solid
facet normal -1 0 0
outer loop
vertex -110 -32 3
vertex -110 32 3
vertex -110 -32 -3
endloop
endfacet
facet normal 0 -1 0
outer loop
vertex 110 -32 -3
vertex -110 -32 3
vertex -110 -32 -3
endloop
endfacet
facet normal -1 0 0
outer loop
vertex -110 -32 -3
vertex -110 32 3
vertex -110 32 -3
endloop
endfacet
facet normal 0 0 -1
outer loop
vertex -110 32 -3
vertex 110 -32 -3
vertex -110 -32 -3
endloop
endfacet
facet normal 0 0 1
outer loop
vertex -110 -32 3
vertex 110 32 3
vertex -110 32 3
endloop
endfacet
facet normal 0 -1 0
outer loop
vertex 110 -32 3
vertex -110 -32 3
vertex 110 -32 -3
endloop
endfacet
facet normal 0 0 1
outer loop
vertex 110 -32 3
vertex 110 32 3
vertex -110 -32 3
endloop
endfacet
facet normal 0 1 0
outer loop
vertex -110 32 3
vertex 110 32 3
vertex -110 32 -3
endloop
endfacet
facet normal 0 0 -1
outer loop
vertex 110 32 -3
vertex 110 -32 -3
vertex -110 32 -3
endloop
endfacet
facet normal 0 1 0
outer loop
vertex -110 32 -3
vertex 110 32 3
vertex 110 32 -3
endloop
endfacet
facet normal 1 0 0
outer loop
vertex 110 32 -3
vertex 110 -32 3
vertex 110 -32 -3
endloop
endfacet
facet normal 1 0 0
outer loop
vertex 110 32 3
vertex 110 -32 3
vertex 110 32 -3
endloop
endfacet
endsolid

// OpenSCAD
polyhedron(points=[[-110.0, -32.0, -3.0], [-110.0, -32.0, 3.0], [-110.0, 32.0, -3.0], [-110.0, 32.0, 3.0], [110.0, -32.0, -3.0], [110.0, -32.0, 3.0], [110.0, 32.0, -3.0], [110.0, 32.0, 3.0]], faces=[[1, 3, 0], [4, 1, 0], [0, 3, 2], [2, 4, 0], [1, 7, 3], [5, 1, 4], [5, 7, 1], [3, 7, 2], [6, 4, 2], [2, 7, 6], [6, 5, 4], [7, 5, 6]], convexity=20);
